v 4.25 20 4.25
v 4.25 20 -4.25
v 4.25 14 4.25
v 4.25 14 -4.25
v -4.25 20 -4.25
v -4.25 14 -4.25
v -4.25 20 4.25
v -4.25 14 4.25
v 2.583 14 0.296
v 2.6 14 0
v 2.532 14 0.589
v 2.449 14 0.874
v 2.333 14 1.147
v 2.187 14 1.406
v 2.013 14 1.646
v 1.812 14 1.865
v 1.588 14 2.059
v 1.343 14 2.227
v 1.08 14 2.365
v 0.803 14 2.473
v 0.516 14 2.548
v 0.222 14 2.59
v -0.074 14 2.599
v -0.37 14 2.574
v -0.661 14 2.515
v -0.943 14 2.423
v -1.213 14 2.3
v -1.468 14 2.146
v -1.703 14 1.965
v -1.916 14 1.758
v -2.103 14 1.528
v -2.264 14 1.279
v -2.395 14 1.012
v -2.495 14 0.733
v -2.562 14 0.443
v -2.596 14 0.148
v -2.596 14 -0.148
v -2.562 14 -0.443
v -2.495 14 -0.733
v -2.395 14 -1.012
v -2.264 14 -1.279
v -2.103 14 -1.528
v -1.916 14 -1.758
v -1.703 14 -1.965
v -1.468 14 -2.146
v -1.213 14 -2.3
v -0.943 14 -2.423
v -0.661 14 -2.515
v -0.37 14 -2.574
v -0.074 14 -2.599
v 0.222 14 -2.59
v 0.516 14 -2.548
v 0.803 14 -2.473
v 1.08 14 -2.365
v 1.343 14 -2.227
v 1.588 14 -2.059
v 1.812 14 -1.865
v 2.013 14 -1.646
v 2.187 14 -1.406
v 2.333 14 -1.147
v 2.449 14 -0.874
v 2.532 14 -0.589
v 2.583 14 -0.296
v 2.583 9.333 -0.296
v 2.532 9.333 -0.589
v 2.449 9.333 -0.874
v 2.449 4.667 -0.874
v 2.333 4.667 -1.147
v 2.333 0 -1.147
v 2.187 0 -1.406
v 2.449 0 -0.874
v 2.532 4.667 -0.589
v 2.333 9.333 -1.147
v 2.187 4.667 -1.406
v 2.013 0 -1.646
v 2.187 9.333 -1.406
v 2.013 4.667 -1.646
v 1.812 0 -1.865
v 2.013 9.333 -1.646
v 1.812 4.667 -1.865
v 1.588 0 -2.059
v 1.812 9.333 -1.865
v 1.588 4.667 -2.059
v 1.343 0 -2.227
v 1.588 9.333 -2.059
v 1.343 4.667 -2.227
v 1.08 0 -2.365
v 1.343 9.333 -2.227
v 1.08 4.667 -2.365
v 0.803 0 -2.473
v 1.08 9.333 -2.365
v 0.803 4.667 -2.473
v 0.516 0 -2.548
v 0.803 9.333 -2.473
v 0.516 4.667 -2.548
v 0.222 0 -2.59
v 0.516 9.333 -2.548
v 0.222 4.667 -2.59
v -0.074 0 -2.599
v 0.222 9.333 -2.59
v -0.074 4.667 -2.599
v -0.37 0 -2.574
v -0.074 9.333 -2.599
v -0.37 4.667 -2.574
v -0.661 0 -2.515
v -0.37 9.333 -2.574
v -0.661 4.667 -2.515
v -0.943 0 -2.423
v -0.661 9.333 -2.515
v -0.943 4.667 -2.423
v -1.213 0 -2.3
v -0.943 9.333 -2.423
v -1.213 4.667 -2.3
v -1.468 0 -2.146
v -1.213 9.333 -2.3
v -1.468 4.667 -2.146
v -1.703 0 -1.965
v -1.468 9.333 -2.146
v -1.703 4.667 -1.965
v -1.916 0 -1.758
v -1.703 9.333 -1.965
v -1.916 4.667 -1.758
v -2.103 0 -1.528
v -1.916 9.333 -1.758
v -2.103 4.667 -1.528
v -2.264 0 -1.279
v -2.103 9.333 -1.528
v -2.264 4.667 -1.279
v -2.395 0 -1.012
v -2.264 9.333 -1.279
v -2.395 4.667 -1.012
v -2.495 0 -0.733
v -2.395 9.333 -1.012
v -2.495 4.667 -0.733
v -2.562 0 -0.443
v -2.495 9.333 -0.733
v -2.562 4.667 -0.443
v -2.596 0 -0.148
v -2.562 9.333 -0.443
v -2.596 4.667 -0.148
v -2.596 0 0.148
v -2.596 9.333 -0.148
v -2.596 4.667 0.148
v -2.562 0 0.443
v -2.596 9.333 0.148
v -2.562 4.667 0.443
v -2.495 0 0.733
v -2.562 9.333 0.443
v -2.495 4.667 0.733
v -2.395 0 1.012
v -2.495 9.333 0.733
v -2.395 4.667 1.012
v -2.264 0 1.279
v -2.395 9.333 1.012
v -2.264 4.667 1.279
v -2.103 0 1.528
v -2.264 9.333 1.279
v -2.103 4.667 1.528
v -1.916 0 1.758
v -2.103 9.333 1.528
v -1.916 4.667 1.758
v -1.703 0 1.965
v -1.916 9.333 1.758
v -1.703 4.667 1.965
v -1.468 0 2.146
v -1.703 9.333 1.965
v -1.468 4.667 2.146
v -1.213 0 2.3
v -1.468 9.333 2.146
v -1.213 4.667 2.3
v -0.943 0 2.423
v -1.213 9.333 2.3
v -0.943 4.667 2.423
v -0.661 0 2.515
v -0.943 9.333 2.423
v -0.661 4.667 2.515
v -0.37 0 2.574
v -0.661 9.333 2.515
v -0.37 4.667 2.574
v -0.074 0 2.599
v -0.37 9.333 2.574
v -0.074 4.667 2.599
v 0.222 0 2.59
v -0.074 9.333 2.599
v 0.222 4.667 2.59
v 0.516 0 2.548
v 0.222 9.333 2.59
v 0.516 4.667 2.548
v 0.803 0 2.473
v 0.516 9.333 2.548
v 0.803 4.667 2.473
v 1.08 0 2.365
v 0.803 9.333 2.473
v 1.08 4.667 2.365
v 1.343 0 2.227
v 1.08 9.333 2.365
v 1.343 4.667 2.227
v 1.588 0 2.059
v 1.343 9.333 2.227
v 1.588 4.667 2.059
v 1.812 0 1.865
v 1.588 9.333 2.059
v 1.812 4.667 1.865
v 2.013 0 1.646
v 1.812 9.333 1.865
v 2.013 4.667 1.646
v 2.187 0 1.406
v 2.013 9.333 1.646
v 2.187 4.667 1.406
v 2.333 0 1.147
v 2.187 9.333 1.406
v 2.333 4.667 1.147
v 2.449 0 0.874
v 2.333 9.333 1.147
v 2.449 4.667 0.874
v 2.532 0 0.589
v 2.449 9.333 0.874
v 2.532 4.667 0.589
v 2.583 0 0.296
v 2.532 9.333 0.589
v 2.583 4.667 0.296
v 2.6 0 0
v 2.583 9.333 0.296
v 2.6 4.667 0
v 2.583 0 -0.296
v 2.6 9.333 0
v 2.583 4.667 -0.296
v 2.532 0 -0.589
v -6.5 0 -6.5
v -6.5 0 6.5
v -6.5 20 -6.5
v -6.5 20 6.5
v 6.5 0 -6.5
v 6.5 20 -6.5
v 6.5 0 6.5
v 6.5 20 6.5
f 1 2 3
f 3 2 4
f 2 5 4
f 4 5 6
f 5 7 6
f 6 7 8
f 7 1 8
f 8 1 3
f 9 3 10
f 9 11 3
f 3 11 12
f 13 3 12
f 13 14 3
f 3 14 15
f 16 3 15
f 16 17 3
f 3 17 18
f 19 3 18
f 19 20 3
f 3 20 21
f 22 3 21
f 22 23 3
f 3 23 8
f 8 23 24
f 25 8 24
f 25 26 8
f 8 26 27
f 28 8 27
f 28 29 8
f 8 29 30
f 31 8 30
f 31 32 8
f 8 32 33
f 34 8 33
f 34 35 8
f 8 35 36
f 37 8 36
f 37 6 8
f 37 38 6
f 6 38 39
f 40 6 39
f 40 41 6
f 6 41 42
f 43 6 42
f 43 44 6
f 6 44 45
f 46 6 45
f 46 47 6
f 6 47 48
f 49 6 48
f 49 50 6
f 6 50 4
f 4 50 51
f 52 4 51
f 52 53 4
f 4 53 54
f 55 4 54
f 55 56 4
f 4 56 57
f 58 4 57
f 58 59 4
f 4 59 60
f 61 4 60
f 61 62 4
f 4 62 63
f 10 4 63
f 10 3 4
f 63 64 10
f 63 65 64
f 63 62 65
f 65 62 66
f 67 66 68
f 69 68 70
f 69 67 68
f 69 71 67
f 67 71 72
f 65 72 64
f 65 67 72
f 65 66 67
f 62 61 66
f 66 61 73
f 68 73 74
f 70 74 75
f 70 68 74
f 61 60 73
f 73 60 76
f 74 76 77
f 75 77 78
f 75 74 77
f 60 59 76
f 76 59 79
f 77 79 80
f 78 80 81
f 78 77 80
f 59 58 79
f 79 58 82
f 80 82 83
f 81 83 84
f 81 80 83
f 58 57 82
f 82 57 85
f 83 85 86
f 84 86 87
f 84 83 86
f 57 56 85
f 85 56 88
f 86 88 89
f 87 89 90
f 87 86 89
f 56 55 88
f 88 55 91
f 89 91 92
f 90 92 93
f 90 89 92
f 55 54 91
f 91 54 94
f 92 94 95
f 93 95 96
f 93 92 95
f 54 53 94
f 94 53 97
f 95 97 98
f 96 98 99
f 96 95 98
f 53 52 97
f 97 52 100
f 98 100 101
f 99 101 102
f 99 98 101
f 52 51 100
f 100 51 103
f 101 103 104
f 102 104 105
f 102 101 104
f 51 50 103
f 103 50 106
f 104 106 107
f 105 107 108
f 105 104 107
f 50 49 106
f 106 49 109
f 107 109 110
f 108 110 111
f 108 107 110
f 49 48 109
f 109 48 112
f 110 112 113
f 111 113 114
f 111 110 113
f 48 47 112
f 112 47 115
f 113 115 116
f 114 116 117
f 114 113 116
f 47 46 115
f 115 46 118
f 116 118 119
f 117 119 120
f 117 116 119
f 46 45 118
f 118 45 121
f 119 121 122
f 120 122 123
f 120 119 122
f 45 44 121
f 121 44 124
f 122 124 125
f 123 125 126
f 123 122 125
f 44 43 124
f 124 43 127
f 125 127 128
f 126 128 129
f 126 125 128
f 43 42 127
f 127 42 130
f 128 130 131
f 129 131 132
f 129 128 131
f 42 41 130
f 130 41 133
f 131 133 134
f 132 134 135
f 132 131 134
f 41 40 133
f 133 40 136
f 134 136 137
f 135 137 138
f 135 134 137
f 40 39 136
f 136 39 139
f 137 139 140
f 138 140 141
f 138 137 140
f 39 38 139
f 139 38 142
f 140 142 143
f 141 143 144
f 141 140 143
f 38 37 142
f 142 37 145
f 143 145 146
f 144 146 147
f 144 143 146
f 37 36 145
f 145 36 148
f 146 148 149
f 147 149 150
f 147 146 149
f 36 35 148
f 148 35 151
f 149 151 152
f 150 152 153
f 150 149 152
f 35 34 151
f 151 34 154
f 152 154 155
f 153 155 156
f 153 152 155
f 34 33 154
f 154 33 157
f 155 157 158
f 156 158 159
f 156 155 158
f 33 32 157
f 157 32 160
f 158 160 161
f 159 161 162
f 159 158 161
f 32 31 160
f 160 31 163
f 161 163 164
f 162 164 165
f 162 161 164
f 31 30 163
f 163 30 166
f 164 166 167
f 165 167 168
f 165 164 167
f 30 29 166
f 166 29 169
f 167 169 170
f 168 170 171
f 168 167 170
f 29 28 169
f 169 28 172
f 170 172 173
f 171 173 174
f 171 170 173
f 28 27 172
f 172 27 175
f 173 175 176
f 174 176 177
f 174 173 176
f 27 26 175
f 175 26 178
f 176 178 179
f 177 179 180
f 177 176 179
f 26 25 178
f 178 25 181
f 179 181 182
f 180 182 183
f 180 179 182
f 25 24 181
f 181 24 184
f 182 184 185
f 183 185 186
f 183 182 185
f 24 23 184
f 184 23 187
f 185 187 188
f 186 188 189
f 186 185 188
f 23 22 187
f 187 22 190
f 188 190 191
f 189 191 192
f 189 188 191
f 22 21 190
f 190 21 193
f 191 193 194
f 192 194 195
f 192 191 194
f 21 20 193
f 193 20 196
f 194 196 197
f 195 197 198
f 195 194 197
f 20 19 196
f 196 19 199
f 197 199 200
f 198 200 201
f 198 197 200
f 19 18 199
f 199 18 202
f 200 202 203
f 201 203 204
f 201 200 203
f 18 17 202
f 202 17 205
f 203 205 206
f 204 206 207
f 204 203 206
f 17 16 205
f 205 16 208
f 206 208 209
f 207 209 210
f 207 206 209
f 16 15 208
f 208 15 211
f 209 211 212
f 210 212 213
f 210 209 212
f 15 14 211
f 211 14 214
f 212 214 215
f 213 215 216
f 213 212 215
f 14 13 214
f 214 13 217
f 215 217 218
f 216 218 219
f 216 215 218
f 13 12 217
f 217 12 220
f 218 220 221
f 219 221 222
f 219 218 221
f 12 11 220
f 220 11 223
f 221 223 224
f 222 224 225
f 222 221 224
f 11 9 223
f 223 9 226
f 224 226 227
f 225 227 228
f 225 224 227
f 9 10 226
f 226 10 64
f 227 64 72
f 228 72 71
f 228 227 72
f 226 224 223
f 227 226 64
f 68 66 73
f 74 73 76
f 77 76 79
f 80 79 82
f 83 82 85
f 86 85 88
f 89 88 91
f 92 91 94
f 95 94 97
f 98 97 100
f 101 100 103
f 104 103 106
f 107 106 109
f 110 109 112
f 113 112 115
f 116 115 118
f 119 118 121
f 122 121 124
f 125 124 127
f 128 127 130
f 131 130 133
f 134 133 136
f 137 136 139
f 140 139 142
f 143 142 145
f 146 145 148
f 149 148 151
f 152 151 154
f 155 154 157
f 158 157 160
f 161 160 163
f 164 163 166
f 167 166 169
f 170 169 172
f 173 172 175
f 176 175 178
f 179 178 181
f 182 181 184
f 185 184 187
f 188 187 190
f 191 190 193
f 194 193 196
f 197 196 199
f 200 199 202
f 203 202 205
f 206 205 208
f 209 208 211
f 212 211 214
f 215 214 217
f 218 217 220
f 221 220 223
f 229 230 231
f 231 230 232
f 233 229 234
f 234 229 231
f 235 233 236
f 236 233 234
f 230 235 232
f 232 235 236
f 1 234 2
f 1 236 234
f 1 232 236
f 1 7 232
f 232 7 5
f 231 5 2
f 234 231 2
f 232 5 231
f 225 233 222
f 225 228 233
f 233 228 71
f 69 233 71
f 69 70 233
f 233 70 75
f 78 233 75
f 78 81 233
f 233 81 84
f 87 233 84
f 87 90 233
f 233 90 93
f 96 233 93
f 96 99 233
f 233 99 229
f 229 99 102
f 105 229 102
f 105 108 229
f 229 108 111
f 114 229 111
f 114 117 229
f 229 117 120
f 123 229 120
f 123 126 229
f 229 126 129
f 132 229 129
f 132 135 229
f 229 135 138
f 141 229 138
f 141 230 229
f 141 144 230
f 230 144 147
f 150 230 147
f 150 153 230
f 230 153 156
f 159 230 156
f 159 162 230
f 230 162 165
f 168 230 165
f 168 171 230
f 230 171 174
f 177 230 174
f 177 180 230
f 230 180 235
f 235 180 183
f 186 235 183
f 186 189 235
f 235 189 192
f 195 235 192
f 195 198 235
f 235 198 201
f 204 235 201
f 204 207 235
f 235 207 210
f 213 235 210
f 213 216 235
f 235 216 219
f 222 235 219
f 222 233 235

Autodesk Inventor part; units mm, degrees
ref_plane "YZ Plane" through (0, 0, 0) normal (1, 0, 0) x (0, 1, 0)
ref_plane "XZ Plane" through (0, 0, 0) normal (0, 1, 0) x (-1, 0, 0)
ref_plane "XY Plane" through (0, 0, 0) normal (0, 0, 1) x (1, 0, 0)
sketch "Sketch1" plane through (0, 0, 0) normal (0, 1, 0) x (-1, 0, 0)
  line L0 (14.4237, 0) -> (-15, 0)
  line L1 (0, 25) -> (0, -25.6825)
  line L2 (6.5, 6.5) -> (-6.5, 6.5)
  line L3 (-6.5, 6.5) -> (-6.5, -6.5)
  line L4 (-6.5, -6.5) -> (6.5, -6.5)
  line L5 (6.5, -6.5) -> (6.5, 6.5)
  point P0 (0, 0)
  dimension "d0" = 13
  dimension "d1" = 0
  dimension "d10" = 0
extrude "Body" add sketch "Sketch1" along normal blind 20
sketch "Sketch2" plane through (0, 0, 0) normal (0, -1, 0) x (1, 0, 0)
  circle A0 centre (0, 0) radius 2.6
  dimension "d4" = 5.2
extrude "Screw Thread Hole" cut sketch "Sketch2" against normal through all
sketch "Sketch3" plane through (0, 20, 0) normal (0, 1, 0) x (1, 0, 0)
  line L0 (4.25, -4.25) -> (-4.25, -4.25)
  line L1 (-4.25, -4.25) -> (-4.25, 4.25)
  line L2 (-4.25, 4.25) -> (4.25, 4.25)
  line L3 (4.25, 4.25) -> (4.25, -4.25)
  line L4 (4.25, -4.25) -> (-4.25, 4.25) construction
  line L5 (-4.25, -4.25) -> (4.25, 4.25) construction
  point P0 (0, 0)
  dimension "d11" = 8.5
extrude "Connector" cut sketch "Sketch3" against normal blind 6
properties part number "Screw Port 6_8"
